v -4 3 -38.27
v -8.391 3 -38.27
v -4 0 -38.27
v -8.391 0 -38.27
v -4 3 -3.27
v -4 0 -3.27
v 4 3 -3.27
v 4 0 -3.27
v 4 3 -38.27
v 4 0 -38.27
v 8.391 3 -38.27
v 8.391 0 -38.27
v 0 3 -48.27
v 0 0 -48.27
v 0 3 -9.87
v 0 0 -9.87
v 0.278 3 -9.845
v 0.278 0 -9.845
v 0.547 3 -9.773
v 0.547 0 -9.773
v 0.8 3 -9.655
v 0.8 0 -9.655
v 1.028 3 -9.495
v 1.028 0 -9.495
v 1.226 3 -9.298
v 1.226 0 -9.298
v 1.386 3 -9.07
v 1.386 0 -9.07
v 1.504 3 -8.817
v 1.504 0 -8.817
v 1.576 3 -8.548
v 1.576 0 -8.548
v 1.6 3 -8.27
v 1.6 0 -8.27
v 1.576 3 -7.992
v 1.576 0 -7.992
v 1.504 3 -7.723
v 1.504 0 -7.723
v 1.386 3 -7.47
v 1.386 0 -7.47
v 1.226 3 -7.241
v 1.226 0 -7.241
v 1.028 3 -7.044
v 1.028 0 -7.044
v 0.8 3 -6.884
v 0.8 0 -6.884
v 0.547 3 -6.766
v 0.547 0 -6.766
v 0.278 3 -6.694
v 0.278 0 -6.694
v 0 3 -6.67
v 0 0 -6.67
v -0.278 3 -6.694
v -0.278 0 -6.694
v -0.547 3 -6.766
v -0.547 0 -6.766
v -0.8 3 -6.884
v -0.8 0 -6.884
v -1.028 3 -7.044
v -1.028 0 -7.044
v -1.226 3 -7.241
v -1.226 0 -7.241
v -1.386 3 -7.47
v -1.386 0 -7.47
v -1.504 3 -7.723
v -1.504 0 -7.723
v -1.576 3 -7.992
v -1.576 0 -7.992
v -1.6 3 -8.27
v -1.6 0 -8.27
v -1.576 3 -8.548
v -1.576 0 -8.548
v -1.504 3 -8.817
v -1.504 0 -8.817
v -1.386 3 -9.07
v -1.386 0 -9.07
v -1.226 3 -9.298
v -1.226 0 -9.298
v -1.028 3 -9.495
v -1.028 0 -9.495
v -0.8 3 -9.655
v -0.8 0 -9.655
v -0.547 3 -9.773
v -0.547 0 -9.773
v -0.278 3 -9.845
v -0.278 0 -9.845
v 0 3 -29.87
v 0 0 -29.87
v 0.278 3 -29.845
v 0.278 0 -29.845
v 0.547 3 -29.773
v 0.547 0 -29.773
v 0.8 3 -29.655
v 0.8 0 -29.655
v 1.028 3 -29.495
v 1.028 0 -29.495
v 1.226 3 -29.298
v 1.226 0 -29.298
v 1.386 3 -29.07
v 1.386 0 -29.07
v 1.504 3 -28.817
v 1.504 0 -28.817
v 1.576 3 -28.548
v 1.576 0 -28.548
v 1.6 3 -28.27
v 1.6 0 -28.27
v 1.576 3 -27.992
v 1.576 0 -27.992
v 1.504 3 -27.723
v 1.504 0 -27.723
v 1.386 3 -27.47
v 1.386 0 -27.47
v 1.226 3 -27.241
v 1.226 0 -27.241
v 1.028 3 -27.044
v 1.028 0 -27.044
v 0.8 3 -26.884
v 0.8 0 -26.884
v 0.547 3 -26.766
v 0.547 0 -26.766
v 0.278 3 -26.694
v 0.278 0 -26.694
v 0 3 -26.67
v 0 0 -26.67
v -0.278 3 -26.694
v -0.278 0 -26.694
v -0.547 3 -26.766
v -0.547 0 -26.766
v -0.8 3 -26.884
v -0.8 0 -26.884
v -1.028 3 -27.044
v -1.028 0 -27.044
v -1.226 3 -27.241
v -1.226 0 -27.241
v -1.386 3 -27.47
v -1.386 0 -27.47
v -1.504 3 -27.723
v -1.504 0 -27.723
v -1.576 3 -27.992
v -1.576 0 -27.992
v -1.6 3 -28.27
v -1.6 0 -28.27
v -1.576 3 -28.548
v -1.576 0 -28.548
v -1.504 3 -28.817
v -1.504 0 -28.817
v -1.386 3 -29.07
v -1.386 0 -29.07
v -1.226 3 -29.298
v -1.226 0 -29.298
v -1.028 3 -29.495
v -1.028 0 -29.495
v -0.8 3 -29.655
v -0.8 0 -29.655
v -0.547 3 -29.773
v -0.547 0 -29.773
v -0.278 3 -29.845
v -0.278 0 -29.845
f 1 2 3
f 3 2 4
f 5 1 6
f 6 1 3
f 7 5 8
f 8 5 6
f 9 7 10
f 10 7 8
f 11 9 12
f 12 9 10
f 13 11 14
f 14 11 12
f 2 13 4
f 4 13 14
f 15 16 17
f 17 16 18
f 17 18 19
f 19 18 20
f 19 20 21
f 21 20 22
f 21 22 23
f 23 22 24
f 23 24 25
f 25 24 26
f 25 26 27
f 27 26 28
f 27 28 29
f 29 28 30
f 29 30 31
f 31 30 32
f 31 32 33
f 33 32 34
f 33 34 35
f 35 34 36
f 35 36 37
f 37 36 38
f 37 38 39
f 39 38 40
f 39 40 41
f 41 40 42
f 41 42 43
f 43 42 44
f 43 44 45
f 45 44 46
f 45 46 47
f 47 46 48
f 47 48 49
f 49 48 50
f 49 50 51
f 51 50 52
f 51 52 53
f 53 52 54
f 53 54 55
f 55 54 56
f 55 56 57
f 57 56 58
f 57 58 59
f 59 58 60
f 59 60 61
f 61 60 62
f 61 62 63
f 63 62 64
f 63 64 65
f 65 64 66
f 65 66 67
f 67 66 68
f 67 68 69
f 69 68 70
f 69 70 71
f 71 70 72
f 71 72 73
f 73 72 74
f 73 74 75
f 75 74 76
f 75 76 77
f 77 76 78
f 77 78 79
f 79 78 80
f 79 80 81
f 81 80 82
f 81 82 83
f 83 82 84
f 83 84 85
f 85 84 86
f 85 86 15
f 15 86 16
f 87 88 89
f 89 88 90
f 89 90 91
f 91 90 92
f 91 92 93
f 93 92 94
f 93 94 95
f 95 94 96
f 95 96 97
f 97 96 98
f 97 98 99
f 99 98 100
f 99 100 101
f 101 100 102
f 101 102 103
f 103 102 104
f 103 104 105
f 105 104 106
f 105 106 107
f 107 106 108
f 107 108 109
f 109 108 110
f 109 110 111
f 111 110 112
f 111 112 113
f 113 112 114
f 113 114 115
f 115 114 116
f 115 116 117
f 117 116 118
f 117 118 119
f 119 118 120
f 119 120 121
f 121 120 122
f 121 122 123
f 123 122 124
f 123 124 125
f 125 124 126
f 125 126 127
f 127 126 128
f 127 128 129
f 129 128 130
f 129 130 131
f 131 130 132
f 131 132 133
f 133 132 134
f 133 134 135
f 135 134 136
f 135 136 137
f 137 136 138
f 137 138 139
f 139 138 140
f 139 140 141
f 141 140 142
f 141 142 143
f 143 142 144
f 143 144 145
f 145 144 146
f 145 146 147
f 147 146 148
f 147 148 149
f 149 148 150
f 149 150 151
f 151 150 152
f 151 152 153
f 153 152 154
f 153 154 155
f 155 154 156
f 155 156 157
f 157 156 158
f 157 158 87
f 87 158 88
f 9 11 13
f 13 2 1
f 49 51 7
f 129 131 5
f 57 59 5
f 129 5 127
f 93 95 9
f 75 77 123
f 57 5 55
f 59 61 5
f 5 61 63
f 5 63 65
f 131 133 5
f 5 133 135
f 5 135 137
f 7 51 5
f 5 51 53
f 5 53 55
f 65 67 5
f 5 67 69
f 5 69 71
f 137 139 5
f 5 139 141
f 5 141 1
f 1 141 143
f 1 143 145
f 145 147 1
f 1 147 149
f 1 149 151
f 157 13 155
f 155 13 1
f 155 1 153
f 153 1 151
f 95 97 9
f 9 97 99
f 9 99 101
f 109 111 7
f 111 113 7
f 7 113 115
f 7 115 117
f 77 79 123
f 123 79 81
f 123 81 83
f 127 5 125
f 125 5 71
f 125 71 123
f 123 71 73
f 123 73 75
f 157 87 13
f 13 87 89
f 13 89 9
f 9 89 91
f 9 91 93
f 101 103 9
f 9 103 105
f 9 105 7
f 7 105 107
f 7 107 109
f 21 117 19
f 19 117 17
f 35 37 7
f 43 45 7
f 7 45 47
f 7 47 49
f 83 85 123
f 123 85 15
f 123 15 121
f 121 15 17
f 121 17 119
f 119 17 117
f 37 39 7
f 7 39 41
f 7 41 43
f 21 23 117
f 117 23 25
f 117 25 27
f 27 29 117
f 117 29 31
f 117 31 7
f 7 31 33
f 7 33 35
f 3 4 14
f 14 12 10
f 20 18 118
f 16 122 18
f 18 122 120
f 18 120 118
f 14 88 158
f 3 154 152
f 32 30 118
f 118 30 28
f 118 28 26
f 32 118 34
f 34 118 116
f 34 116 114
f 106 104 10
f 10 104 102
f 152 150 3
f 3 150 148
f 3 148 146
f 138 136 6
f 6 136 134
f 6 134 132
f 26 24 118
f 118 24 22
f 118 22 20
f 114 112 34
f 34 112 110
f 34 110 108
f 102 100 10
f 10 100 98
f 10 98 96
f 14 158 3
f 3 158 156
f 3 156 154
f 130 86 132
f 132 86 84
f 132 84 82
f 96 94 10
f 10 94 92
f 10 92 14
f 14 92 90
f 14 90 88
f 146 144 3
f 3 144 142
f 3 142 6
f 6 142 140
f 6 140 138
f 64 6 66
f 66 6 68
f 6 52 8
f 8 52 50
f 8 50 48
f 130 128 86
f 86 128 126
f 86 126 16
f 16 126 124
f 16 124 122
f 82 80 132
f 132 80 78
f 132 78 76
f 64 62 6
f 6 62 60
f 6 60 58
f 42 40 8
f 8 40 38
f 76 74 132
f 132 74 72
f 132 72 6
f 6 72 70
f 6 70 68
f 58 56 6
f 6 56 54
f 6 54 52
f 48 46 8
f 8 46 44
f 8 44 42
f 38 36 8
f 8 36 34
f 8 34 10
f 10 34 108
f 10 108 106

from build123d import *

# Parameters (mm, degrees)
SKETCH1_R           = 1.6
BOSS_EXTRUDE1_DEPTH = 3


with BuildPart() as part:
    # Sketch1 → Boss-Extrude1 (new body)
    with BuildSketch(Plane(origin=(0, 0, 0), x_dir=(1, 0, 0), z_dir=(0, 1, 0))):
        Polygon((8.390996312, 38.269741393), (0, 48.269741393), (-8.390996312, 38.269741393), (-4, 38.269741393), (-4, 3.269741393), (4, 3.269741393), (4, 38.269741393), align=None)
        with Locations((0, 28.269741393)):
            Circle(SKETCH1_R, mode=Mode.SUBTRACT)
        with Locations((0, 8.269741393)):
            Circle(SKETCH1_R, mode=Mode.SUBTRACT)
    extrude(amount=BOSS_EXTRUDE1_DEPTH)


solid = part.part
